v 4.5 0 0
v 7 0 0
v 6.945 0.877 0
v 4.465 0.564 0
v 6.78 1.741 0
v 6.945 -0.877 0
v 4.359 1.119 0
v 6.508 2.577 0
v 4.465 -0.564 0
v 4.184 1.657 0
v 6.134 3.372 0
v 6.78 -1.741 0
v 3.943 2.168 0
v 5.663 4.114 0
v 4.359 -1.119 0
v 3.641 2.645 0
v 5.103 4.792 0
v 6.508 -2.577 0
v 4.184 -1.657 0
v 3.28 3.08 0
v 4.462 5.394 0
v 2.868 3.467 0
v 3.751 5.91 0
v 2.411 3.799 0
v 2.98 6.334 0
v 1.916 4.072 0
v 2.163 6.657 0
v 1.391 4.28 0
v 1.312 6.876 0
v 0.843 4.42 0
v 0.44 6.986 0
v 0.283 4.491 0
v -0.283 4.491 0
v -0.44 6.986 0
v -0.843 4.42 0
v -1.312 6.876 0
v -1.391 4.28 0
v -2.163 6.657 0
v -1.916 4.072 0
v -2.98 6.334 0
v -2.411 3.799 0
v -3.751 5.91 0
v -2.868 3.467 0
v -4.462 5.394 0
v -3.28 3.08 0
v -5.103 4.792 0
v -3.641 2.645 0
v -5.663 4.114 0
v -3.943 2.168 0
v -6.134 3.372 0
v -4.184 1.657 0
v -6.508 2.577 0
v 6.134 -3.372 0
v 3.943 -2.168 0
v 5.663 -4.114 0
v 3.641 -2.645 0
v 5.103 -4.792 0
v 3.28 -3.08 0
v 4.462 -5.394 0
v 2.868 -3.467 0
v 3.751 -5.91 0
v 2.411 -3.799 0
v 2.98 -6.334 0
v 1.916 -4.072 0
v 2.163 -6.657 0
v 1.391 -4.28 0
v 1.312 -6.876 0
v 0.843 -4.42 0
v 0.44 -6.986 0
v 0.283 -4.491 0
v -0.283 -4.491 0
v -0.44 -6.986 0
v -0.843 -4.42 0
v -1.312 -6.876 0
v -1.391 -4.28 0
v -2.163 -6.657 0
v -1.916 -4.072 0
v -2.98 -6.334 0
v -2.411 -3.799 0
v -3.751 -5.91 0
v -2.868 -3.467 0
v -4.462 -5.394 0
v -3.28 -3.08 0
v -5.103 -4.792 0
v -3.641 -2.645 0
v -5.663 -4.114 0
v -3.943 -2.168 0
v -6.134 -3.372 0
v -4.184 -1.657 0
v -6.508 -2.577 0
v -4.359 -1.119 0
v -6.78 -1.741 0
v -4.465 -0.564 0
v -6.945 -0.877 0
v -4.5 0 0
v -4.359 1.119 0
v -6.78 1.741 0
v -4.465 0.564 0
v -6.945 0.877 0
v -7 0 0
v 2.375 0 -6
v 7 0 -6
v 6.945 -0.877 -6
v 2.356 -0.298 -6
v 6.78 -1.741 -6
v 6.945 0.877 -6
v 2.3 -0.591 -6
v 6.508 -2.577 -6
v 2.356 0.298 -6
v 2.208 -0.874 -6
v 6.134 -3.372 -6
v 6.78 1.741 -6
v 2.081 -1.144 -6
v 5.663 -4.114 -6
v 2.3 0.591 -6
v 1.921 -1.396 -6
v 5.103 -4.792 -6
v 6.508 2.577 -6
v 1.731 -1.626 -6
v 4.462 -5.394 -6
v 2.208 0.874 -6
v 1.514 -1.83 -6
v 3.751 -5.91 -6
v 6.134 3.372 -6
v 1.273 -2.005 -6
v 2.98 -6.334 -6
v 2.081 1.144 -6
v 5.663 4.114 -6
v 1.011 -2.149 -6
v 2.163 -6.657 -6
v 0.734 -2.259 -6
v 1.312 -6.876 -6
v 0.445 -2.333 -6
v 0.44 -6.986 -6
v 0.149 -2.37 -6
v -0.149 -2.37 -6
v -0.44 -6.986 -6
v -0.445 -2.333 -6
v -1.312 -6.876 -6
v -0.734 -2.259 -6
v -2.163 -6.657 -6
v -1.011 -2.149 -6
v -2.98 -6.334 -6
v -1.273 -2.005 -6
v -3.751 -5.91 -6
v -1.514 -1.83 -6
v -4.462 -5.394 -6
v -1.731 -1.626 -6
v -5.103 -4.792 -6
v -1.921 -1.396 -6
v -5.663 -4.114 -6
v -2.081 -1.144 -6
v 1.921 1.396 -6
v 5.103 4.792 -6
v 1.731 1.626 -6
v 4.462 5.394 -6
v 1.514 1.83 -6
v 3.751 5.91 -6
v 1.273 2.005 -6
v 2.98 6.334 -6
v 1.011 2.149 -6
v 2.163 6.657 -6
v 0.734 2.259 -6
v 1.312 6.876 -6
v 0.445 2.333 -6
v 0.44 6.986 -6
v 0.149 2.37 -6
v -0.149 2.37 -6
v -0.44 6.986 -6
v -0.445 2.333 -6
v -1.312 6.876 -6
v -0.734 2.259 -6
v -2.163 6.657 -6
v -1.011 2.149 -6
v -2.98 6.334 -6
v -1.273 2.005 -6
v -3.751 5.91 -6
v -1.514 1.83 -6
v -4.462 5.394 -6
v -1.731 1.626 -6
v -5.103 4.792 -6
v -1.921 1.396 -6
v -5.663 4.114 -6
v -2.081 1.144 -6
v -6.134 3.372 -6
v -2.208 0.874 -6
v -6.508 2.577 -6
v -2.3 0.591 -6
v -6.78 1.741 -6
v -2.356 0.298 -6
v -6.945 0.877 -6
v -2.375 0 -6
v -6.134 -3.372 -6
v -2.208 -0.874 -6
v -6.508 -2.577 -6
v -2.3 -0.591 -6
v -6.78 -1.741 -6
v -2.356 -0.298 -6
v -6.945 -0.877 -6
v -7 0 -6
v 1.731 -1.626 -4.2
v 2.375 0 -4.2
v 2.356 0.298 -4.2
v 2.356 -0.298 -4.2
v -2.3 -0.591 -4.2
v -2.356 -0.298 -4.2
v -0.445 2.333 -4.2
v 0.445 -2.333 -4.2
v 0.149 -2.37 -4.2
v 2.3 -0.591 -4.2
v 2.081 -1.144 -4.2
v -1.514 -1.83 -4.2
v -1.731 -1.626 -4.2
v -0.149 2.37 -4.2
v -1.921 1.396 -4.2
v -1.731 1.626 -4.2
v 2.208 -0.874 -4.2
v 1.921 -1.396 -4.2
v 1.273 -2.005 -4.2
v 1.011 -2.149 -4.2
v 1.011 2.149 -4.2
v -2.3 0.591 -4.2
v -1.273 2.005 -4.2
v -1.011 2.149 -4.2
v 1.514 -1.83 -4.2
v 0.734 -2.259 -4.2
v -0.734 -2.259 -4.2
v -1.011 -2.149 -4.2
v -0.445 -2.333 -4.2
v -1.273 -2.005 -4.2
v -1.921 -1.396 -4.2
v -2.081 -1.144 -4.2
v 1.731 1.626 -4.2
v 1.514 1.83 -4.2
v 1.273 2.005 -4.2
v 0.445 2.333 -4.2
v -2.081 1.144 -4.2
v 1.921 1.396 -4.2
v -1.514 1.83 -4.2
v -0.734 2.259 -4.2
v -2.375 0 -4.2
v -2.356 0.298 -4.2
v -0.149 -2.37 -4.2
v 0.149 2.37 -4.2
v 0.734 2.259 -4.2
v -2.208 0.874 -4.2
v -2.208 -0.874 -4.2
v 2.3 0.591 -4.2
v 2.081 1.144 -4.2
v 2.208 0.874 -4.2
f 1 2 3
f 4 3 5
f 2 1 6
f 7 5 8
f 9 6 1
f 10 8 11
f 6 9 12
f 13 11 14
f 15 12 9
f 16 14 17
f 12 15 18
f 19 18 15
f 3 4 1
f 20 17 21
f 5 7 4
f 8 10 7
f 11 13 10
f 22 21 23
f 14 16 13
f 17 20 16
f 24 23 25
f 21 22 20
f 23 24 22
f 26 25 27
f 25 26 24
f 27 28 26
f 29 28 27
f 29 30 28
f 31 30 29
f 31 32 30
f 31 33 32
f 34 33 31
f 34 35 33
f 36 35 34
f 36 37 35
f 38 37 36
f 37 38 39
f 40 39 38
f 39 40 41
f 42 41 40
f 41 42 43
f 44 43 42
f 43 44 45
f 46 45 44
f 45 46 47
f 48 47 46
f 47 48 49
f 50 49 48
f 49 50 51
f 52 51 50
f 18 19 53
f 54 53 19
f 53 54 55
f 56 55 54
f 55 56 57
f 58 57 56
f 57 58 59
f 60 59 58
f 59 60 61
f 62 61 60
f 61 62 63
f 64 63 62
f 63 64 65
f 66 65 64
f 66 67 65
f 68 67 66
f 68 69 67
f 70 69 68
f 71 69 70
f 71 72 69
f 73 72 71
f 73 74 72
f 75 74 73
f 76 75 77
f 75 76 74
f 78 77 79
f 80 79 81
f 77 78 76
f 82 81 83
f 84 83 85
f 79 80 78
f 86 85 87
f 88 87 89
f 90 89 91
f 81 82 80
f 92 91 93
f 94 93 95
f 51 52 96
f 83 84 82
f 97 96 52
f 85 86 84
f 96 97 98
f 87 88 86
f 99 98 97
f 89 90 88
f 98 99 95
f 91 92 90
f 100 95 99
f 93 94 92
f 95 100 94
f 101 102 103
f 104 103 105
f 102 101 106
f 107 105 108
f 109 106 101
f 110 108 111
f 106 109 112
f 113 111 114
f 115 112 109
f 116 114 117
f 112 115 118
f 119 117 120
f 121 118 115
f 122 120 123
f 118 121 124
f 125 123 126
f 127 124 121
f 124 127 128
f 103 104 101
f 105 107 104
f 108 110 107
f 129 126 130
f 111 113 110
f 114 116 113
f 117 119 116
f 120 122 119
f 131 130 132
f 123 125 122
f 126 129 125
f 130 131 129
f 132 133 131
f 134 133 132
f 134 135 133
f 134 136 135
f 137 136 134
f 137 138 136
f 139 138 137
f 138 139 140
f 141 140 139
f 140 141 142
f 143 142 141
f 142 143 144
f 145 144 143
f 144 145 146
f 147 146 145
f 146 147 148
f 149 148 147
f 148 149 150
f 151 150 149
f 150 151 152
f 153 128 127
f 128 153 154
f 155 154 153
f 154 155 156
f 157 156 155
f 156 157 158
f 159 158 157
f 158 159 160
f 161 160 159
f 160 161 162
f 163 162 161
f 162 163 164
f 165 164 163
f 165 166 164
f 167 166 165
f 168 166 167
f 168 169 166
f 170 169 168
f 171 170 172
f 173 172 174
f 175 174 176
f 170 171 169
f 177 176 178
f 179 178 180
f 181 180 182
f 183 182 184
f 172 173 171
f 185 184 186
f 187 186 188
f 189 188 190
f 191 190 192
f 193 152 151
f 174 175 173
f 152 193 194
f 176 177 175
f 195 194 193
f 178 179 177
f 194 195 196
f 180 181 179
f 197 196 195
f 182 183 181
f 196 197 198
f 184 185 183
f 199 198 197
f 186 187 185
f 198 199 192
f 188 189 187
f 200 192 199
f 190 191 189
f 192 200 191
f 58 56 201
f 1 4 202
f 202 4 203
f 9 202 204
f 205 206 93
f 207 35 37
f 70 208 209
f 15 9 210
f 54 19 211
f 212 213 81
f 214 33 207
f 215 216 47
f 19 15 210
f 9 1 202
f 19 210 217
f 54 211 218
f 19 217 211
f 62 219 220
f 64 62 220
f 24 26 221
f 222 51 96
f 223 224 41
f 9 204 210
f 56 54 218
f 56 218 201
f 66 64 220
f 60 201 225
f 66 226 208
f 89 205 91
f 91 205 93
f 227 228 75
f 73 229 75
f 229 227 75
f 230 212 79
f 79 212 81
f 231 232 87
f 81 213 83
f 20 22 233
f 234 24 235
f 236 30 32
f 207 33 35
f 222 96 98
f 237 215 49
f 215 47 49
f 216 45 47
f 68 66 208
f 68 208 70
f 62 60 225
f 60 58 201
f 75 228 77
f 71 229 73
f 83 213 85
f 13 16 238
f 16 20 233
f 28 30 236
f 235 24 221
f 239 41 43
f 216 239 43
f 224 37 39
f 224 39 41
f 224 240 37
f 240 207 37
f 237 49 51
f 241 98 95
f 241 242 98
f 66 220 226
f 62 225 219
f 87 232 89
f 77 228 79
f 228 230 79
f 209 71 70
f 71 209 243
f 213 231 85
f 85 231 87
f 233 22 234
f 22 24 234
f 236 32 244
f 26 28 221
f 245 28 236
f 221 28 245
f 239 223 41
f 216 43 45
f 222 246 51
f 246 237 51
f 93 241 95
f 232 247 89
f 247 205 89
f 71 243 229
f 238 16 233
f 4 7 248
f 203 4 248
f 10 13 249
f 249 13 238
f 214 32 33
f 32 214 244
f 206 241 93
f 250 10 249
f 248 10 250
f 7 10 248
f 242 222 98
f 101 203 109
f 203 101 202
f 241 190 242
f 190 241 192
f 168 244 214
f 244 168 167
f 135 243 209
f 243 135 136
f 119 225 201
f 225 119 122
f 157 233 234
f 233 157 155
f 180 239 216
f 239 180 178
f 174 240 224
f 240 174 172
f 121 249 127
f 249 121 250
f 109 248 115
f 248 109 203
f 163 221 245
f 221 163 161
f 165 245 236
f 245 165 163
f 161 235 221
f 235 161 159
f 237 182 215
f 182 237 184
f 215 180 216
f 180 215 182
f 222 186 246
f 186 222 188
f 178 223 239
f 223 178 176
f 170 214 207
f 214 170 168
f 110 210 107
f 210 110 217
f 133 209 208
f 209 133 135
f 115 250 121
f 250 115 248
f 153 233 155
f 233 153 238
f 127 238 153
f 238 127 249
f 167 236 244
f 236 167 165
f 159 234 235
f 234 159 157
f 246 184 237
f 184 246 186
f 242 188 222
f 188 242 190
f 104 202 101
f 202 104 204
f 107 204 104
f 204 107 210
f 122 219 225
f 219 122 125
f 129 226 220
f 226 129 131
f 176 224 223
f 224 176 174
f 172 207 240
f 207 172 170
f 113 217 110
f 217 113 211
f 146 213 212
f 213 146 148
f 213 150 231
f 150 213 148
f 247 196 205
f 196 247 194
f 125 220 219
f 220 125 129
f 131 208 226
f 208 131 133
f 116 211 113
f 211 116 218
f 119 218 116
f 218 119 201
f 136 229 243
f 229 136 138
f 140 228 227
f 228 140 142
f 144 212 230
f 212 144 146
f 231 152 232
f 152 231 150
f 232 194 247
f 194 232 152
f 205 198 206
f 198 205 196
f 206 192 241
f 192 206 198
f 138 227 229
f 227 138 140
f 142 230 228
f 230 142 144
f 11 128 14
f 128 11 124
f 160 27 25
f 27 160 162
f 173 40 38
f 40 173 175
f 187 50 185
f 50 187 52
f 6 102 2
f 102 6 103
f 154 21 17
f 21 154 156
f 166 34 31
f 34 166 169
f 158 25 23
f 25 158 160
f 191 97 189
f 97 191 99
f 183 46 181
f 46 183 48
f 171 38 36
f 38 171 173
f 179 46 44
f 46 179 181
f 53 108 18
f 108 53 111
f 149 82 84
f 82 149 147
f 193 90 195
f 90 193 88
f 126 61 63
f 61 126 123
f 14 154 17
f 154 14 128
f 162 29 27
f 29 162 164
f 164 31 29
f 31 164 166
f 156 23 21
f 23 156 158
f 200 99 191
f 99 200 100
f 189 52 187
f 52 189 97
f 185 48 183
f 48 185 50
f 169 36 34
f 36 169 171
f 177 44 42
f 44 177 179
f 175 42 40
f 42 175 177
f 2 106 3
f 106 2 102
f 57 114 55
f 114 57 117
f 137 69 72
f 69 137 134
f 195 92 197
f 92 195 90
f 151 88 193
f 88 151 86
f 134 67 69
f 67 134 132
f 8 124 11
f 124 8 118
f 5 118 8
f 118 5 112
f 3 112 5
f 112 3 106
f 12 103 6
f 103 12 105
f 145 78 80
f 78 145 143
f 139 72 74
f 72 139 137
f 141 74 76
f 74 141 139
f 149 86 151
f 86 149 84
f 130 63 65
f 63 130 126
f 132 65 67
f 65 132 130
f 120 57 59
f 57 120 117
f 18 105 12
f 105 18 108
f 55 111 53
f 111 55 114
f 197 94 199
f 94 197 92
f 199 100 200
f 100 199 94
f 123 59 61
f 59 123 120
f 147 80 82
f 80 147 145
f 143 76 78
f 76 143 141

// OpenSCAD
$fn = 50;


difference() {
	union() {
		translate(v = [0, 0, -6.0000000000]) {
			cylinder(h = 6, r = 7.0000000000);
		}
	}
	union() {
		translate(v = [0, 0, 0]) {
			rotate(a = [0, 0, 0]) {
				difference() {
					union() {
						#translate(v = [0, 0, -6.0000000000]) {
							cylinder(h = 6, r = 2.2500000000);
						}
						#translate(v = [0, 0, -4.2000000000]) {
							cylinder(h = 4.2000000000, r1 = 2.3750000000, r2 = 4.5000000000);
						}
						#translate(v = [0, 0, -6.0000000000]) {
							cylinder(h = 6, r = 2.3750000000);
						}
						#translate(v = [0, 0, -6.0000000000]) {
							cylinder(h = 6, r = 2.2500000000);
						}
					}
					union();
				}
			}
		}
	}
}
